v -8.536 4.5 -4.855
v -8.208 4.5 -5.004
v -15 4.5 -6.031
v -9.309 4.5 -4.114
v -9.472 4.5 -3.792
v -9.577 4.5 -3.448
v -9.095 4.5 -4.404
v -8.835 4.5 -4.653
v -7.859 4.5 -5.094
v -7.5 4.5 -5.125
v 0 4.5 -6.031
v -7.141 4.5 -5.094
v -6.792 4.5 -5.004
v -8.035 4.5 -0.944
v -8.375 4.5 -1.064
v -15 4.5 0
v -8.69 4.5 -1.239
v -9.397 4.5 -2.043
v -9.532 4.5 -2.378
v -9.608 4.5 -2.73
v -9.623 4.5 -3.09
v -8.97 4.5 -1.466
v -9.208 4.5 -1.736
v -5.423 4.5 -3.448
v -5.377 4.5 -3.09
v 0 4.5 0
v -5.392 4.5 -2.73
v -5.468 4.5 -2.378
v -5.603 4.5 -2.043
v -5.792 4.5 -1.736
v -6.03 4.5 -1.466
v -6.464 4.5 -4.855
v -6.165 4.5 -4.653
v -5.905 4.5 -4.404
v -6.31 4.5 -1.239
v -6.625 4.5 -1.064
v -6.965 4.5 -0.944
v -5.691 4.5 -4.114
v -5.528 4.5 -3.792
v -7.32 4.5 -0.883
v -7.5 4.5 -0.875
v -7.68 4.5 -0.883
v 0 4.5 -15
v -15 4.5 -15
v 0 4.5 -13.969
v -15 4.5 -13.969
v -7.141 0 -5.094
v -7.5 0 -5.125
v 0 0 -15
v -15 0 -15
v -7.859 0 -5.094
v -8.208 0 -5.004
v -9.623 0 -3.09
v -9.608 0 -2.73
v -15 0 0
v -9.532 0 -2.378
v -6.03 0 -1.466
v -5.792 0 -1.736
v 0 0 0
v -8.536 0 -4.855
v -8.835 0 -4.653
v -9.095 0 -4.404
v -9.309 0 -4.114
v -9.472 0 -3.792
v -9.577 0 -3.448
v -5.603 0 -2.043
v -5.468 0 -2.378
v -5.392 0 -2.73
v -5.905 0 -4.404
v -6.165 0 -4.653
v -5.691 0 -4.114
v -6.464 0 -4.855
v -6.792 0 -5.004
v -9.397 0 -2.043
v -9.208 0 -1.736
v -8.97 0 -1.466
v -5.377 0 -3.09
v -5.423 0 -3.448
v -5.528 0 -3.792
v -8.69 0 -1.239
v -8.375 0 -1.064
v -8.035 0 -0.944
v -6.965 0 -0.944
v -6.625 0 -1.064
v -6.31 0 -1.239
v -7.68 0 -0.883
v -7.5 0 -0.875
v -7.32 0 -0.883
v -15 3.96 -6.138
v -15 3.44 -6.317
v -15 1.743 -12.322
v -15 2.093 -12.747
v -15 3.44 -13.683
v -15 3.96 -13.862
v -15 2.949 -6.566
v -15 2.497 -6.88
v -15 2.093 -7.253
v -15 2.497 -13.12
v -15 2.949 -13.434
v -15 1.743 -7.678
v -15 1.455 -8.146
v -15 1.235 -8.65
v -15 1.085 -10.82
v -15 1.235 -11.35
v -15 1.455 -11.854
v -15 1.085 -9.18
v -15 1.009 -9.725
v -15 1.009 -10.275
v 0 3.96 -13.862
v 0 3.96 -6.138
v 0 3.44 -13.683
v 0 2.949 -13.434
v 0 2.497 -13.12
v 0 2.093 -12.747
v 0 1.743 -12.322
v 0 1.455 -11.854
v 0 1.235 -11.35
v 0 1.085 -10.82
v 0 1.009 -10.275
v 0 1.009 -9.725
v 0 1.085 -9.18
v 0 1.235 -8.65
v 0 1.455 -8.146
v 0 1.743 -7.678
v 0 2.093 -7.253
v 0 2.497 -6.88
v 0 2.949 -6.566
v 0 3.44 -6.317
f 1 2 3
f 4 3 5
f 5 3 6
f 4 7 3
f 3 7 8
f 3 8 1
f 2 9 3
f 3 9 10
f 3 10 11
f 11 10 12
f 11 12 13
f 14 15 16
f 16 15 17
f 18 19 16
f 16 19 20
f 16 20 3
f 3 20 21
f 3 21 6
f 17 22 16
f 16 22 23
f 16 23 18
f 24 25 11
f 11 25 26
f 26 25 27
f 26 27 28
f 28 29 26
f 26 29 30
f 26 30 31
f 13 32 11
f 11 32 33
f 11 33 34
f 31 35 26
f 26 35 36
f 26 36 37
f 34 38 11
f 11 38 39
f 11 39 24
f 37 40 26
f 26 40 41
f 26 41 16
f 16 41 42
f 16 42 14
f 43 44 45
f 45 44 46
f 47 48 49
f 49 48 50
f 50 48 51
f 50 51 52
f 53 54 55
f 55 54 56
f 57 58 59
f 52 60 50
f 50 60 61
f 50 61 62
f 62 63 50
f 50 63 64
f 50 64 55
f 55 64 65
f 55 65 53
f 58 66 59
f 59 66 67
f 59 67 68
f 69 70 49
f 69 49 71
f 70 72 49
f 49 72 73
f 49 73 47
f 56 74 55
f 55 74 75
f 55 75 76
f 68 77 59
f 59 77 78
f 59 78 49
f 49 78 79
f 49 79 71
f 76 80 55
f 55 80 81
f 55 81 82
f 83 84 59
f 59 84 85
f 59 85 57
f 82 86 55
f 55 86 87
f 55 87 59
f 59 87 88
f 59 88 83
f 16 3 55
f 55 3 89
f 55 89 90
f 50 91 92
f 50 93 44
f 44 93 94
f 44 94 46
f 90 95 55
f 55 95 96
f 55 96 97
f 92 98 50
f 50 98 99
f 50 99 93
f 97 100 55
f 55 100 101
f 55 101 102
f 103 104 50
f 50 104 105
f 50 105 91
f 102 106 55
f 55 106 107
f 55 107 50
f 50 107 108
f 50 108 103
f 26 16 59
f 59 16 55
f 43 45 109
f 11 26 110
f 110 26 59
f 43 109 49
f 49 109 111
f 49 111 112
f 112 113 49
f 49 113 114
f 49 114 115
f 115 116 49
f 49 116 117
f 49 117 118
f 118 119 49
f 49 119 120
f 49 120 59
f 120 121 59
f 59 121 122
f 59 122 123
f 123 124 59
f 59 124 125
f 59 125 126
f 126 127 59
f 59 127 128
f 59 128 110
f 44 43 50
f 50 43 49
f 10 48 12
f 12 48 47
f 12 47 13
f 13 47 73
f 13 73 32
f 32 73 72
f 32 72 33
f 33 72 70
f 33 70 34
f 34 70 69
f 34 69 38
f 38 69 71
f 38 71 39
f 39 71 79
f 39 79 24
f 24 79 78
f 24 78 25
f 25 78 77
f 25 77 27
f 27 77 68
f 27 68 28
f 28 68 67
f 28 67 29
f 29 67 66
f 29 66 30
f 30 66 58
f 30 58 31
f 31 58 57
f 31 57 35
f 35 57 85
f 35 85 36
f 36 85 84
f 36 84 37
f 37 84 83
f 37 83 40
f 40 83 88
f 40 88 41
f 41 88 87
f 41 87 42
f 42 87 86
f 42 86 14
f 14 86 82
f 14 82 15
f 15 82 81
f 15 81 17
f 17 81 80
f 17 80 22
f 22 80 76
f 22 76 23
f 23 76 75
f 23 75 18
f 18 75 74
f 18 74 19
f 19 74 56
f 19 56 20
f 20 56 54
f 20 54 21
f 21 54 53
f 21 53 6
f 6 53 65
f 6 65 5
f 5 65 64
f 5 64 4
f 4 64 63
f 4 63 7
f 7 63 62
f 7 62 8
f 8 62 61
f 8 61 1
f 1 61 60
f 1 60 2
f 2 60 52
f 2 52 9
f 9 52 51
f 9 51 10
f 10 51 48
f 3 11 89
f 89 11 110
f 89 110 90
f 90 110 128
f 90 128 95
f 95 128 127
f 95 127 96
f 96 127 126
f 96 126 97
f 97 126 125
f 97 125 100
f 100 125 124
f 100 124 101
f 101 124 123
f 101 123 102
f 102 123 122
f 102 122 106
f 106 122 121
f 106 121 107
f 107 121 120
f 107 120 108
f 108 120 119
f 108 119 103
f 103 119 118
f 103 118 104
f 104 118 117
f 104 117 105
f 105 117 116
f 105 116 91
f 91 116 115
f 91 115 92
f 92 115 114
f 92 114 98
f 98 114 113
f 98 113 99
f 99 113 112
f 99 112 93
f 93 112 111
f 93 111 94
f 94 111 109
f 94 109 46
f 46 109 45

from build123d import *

# Parameters (mm, degrees)
SKETCH1_W           = 15
SKETCH1_H           = 15
SKETCH1_R           = 2.125
BOSS_EXTRUDE1_DEPTH = 4.5
CUT_EXTRUDE1_REACH  = 23.685
SKETCH2_R           = 4


with BuildPart() as part:
    # Sketch1 → Boss-Extrude1 (new body)
    with BuildSketch(Plane(origin=(0, 0, 0), x_dir=(1, 0, 0), z_dir=(0, 1, 0))):
        with Locations((-7.5, 7.5)):
            Rectangle(SKETCH1_W, SKETCH1_H)
        with Locations(Location((-7.5, 3, 0), (0, 0, 270))):
            Circle(SKETCH1_R, mode=Mode.SUBTRACT)
    extrude(amount=BOSS_EXTRUDE1_DEPTH)

    # Sketch2 → Cut-Extrude1 (cut, up to next)
    with BuildSketch(Plane(origin=(0, 0, 0), x_dir=(0, 0, -1), z_dir=(1, 0, 0)), mode=Mode.PRIVATE) as cut_extrude1_sk1:
        with Locations((10, 5)):
            Circle(SKETCH2_R)
    cut_extrude1_tool1 = extrude(cut_extrude1_sk1.sketch, amount=-CUT_EXTRUDE1_REACH, mode=Mode.PRIVATE) & part.part
    add(cut_extrude1_tool1.solids().sort_by_distance((0, 5, -10))[0], mode=Mode.SUBTRACT)


solid = part.part
